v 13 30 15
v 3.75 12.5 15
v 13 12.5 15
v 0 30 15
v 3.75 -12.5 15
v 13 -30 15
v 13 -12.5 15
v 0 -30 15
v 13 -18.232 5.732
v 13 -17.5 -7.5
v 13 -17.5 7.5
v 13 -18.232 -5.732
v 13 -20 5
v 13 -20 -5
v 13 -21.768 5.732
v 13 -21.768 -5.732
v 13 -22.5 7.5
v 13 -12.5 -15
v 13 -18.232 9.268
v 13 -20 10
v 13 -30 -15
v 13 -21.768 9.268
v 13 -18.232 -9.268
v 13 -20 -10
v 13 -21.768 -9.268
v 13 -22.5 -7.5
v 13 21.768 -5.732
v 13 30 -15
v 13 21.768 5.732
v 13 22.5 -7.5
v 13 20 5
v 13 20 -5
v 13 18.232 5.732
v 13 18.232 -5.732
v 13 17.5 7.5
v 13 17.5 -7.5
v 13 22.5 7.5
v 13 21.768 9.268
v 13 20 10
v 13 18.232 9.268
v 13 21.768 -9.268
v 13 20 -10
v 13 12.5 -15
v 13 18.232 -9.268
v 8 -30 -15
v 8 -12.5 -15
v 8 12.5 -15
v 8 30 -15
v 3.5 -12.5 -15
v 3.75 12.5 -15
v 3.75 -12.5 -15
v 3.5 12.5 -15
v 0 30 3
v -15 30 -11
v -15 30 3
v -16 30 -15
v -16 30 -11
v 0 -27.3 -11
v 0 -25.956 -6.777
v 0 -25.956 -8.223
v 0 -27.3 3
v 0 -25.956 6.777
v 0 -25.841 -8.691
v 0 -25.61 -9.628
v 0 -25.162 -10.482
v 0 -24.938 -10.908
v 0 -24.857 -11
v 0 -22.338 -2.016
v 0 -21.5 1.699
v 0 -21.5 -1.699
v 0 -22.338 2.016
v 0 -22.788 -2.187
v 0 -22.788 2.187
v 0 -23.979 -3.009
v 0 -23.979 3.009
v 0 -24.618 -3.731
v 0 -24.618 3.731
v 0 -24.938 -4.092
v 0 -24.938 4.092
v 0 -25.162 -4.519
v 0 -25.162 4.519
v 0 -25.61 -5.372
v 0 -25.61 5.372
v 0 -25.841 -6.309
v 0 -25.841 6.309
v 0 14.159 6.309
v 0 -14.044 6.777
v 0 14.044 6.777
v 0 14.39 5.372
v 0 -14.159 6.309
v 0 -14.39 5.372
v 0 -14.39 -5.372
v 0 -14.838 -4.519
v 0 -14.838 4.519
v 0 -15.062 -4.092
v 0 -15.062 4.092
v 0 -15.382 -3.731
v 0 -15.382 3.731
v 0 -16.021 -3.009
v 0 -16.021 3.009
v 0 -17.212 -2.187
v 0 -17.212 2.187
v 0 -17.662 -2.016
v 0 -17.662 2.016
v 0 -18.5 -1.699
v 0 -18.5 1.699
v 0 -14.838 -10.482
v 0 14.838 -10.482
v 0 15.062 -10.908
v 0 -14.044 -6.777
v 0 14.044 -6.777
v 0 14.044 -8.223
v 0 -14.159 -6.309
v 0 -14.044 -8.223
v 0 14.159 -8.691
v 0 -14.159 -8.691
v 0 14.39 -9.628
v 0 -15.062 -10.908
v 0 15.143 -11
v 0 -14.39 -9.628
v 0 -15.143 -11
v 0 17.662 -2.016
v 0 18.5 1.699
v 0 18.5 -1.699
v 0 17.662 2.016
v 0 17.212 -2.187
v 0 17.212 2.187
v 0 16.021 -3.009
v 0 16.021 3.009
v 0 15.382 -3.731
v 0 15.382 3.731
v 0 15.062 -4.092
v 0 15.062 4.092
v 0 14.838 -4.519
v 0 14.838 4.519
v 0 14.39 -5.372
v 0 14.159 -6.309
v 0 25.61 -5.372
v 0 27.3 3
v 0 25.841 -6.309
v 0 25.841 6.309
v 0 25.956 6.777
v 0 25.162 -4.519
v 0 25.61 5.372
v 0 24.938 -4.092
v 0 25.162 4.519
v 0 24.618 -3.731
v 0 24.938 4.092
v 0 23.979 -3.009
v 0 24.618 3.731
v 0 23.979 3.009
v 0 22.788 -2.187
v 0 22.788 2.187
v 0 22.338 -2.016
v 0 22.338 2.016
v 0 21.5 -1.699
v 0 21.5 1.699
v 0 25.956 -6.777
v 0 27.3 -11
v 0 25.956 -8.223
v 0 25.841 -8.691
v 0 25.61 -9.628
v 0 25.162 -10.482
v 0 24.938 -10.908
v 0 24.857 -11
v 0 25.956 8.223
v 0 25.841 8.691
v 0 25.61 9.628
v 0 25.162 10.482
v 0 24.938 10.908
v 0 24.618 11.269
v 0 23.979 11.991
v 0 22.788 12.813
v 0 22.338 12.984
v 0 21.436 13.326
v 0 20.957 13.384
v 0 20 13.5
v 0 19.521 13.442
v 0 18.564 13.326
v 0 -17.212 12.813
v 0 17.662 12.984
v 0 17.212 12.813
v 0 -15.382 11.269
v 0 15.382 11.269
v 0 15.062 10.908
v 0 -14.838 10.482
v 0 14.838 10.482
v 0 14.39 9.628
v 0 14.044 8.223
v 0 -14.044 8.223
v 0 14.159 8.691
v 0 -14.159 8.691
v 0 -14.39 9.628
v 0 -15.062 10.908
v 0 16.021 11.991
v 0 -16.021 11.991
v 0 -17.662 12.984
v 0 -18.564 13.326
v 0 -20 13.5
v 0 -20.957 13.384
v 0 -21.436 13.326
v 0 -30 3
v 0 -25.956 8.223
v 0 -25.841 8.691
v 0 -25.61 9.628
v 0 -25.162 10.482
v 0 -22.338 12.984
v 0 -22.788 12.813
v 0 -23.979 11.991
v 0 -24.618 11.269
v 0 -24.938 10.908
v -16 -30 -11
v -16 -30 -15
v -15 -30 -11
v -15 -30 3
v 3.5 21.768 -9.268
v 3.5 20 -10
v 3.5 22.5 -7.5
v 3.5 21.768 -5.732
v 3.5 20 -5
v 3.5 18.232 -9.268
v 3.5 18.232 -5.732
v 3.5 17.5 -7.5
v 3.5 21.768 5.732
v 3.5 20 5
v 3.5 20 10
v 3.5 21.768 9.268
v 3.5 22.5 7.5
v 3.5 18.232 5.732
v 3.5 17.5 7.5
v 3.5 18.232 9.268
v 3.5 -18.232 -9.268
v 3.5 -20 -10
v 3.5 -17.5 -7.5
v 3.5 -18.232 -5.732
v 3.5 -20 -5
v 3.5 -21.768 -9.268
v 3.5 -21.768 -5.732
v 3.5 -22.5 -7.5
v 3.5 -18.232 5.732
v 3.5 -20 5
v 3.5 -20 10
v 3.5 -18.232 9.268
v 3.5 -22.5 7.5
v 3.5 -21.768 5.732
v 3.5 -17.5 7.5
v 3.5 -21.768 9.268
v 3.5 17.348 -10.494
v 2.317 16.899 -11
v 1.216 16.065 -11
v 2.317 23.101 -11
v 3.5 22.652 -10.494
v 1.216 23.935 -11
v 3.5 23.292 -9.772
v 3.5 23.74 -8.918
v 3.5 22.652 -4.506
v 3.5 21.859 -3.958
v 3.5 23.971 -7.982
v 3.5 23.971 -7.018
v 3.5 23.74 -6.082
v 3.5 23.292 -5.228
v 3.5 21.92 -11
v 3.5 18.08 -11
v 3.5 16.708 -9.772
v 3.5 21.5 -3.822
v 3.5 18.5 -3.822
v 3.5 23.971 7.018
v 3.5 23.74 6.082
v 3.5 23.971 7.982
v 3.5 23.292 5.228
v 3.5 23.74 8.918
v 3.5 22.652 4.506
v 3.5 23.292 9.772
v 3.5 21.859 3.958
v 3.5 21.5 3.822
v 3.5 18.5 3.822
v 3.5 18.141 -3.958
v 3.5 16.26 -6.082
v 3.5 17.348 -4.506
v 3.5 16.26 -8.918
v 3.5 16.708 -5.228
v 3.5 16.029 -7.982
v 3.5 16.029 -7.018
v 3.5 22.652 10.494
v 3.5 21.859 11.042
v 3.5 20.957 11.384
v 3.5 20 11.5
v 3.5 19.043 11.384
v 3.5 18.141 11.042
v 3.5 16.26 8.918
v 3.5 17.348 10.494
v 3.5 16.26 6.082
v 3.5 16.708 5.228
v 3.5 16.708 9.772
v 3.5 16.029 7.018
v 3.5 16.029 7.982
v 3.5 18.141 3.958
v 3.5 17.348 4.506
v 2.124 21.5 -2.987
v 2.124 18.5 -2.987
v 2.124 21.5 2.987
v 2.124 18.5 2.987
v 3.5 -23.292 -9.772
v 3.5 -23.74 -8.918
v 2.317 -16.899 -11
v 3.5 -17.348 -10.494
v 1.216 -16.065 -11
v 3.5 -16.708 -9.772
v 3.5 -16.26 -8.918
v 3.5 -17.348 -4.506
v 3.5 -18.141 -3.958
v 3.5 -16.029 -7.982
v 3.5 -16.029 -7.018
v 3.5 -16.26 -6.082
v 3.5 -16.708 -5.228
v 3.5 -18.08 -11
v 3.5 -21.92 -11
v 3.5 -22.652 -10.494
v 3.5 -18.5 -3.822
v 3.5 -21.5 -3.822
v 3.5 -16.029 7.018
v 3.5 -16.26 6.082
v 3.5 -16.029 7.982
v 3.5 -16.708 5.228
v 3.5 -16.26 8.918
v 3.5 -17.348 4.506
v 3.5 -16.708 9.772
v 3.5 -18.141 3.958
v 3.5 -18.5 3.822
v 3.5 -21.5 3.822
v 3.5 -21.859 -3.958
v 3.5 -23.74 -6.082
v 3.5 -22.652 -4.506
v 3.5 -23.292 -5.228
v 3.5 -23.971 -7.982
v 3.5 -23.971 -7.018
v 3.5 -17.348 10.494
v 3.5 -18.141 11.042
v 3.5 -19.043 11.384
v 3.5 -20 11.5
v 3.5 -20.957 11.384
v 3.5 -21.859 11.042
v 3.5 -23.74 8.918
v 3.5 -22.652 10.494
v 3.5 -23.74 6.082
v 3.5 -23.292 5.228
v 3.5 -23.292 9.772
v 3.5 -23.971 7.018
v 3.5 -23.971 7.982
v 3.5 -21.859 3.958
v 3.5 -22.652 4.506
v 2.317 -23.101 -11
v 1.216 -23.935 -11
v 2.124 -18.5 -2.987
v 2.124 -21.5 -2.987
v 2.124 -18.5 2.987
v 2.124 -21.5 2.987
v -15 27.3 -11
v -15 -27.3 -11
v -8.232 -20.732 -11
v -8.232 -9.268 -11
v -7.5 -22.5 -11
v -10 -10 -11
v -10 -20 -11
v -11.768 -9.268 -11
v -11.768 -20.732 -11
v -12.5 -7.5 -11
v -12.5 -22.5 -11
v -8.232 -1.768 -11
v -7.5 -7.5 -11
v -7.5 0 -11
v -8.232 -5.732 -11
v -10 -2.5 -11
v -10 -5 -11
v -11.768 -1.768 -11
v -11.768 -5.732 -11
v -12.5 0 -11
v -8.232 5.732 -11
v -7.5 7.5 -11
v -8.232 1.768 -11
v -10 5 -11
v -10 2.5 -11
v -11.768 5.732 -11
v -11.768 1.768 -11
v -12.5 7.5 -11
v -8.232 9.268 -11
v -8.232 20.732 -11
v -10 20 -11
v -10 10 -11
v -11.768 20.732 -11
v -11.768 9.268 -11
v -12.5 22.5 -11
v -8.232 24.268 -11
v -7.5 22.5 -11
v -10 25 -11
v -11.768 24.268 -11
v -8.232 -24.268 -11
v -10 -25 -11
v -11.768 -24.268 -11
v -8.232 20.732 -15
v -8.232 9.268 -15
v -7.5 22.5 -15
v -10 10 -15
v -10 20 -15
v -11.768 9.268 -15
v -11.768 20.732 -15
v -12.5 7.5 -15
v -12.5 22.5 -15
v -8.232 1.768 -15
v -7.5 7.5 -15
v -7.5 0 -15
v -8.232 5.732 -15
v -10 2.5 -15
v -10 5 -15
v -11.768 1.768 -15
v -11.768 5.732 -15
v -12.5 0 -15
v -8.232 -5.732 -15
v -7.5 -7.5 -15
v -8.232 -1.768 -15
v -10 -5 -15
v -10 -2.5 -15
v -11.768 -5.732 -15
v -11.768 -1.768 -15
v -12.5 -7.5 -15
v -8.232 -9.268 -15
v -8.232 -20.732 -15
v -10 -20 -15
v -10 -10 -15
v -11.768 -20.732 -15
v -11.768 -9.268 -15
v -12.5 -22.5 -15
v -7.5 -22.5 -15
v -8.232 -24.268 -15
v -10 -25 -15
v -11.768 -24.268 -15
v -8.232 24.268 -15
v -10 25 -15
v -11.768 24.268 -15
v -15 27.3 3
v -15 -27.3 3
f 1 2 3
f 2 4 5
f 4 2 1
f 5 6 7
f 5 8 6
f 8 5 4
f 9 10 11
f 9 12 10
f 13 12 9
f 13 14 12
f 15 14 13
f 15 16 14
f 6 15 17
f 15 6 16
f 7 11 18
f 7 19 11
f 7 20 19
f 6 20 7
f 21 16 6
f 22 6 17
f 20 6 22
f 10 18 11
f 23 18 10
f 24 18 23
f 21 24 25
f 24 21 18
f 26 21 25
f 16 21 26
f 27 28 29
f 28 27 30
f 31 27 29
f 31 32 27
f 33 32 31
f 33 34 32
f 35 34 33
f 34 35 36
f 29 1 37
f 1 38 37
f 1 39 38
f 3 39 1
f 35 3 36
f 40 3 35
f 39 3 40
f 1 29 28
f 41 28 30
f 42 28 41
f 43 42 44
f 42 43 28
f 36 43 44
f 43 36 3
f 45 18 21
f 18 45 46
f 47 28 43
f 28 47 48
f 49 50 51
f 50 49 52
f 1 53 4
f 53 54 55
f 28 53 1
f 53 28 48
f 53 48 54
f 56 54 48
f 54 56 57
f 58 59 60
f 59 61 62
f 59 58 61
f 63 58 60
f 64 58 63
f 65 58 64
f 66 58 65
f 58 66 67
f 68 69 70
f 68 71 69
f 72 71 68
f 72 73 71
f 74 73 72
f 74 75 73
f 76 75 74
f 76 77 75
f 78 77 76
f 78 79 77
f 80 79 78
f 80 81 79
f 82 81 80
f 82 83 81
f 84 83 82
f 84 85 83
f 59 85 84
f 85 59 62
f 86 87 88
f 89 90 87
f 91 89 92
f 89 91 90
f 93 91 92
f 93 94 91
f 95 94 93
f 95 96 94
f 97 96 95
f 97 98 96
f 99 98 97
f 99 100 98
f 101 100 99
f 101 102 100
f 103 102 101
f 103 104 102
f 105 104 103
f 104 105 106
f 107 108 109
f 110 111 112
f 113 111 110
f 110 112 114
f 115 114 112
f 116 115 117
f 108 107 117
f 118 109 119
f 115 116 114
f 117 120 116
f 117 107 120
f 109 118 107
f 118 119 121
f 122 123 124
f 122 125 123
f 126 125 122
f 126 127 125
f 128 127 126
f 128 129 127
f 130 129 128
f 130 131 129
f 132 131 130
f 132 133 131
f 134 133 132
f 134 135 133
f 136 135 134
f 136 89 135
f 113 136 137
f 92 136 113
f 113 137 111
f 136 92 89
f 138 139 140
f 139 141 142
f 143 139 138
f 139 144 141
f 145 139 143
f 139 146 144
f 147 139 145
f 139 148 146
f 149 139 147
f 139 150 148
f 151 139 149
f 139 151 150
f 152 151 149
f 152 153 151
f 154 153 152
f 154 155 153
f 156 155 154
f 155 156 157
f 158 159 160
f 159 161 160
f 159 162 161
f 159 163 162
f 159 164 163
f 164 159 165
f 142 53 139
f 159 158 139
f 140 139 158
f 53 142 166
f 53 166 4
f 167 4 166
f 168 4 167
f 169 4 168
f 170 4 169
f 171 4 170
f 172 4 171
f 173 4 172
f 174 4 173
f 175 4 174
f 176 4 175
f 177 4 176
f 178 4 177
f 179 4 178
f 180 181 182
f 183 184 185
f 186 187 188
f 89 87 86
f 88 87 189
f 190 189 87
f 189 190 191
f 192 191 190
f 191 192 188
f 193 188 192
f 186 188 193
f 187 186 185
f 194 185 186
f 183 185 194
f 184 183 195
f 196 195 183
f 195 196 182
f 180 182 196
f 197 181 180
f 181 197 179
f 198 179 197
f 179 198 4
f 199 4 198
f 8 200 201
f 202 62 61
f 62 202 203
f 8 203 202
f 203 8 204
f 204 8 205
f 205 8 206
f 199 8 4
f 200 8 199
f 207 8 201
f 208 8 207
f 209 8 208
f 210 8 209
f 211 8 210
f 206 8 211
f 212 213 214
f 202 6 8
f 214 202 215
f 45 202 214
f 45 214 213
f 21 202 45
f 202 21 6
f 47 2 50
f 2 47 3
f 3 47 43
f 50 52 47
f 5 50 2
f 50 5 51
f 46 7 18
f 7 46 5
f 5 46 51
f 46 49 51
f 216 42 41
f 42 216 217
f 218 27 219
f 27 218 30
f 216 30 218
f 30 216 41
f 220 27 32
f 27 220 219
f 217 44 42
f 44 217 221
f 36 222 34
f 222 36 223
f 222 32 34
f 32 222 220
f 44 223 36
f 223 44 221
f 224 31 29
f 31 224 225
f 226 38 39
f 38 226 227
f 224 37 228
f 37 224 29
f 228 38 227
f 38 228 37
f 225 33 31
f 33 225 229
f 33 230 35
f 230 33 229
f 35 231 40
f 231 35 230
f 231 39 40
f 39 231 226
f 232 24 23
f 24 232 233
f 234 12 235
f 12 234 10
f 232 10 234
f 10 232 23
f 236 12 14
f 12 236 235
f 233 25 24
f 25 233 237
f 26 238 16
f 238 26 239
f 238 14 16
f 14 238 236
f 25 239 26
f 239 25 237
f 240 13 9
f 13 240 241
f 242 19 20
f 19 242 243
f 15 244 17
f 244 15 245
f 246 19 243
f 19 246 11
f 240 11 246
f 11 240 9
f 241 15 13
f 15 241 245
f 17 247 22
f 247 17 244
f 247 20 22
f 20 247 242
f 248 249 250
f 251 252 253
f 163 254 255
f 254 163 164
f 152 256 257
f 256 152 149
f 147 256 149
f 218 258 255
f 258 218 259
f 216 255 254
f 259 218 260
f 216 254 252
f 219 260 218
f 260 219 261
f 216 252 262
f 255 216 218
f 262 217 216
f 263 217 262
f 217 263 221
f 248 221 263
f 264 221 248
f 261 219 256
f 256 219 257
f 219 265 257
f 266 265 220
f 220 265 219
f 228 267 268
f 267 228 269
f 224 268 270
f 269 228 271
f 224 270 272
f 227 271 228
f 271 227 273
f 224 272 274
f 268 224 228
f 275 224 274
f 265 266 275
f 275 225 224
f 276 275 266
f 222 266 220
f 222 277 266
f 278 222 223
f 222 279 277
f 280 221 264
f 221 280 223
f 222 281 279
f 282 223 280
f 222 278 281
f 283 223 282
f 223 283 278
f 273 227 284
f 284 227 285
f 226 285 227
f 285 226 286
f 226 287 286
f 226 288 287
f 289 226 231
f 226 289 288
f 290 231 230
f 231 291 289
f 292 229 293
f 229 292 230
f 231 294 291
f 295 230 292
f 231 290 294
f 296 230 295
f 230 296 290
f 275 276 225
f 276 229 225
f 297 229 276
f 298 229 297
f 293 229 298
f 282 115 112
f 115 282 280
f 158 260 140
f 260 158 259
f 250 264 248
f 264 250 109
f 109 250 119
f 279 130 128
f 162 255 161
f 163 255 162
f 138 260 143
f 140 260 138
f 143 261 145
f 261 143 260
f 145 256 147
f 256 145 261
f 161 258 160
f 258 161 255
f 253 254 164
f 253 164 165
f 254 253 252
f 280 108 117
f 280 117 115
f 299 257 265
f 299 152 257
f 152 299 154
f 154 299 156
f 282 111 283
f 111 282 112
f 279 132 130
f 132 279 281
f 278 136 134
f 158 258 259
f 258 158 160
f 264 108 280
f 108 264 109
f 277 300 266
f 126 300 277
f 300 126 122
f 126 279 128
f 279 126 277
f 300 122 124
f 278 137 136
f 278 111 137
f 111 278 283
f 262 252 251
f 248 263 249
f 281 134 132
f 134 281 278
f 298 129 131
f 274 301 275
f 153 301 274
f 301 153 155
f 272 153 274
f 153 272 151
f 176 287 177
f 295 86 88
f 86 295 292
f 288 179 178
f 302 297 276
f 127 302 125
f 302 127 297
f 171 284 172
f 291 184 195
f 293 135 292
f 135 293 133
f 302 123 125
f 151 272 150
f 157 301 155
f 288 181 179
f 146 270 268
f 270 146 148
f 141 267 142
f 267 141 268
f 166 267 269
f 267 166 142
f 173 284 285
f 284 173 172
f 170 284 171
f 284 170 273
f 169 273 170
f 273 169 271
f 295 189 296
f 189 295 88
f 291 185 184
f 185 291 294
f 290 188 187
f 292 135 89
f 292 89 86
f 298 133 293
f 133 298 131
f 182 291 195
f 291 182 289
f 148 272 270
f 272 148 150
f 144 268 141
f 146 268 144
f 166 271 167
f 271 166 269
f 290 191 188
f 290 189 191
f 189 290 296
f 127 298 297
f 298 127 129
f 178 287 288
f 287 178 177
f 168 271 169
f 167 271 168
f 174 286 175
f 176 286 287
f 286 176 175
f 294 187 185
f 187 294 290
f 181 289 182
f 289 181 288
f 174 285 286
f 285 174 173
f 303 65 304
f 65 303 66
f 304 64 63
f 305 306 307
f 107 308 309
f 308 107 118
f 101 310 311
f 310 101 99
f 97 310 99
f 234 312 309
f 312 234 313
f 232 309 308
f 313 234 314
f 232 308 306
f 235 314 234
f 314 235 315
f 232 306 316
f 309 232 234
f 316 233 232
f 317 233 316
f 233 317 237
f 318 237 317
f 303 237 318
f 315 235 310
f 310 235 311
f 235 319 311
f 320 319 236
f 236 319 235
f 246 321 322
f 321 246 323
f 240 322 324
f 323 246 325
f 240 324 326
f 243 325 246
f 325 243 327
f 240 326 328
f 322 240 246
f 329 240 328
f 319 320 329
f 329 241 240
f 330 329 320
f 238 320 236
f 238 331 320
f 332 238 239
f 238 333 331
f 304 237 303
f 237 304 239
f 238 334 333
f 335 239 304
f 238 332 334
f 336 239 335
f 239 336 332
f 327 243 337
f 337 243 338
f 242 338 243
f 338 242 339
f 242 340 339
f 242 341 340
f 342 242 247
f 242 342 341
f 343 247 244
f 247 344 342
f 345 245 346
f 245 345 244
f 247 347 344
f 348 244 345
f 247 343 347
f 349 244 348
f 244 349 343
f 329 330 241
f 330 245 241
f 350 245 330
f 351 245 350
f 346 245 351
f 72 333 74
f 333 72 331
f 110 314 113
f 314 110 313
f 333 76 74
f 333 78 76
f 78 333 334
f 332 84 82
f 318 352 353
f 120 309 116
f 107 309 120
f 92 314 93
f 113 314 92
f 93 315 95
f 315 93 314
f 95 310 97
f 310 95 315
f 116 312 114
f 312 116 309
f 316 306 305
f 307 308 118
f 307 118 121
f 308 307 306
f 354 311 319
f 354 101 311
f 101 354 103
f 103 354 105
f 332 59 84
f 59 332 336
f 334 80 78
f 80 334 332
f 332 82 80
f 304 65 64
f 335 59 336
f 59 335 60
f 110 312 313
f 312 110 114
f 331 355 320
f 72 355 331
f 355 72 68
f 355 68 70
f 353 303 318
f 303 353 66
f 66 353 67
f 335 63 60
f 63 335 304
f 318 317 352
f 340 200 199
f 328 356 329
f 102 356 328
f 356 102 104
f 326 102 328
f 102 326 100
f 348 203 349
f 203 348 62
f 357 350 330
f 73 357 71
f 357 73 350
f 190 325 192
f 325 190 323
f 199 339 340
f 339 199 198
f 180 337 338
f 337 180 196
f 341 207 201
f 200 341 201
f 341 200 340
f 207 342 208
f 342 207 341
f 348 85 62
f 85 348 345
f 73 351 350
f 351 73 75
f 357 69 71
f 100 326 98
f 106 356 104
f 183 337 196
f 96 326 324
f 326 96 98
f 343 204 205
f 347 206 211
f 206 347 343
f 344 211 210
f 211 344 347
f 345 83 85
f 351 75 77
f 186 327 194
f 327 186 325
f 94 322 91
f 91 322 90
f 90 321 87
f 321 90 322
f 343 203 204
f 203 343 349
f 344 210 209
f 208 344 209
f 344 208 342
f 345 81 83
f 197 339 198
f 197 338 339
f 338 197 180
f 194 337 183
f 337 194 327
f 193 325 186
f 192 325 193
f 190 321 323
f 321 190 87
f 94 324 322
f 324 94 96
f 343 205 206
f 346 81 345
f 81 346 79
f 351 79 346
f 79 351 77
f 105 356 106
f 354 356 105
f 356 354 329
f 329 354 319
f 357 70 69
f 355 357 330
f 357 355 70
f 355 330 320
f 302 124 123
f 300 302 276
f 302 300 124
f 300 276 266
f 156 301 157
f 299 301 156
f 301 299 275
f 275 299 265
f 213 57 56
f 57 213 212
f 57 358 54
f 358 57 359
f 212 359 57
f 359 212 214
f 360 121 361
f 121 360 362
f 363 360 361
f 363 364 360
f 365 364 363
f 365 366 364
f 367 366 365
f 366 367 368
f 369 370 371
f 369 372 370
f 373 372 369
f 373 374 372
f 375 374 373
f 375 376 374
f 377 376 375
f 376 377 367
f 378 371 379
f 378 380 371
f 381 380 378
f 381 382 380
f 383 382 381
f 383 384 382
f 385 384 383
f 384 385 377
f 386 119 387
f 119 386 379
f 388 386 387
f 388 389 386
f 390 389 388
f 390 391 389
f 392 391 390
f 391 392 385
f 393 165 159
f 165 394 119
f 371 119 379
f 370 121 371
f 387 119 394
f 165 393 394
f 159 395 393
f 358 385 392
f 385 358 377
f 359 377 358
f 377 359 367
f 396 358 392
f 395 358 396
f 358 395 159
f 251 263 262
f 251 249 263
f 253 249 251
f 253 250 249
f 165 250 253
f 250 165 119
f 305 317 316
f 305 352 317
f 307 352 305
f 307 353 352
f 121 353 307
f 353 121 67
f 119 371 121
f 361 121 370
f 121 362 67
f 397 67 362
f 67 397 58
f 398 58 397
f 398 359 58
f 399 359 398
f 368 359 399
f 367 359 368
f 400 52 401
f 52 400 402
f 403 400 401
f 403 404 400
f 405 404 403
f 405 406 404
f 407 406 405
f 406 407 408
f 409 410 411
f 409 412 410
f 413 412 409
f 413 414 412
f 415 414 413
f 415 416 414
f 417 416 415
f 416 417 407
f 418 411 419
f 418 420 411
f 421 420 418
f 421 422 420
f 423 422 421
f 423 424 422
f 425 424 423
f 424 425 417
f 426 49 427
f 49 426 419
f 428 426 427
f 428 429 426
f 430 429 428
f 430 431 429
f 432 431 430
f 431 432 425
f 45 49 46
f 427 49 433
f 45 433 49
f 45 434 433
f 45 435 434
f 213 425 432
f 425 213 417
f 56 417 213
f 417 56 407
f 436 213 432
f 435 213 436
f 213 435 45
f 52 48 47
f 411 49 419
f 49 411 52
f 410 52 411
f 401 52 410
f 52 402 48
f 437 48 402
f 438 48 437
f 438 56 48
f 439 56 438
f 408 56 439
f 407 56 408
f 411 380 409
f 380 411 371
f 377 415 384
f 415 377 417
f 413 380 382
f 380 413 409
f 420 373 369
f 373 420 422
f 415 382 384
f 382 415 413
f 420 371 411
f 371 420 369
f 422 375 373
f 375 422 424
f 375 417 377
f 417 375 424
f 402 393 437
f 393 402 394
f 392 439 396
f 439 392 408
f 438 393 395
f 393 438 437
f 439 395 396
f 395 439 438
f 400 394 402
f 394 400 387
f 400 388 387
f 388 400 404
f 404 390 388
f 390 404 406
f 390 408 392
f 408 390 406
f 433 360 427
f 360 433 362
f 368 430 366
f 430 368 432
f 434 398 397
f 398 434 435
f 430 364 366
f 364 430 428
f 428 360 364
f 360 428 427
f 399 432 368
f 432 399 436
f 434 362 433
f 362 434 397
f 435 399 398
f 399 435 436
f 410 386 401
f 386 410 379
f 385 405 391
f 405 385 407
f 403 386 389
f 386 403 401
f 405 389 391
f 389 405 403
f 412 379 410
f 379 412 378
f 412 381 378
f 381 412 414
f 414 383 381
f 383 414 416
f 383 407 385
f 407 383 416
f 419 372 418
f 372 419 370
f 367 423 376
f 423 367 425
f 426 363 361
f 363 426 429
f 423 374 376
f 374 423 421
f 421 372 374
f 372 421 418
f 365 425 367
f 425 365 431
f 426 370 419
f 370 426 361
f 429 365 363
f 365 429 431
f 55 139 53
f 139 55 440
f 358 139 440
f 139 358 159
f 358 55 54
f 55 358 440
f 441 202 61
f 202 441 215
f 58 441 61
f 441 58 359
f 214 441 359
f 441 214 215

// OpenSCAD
// 90 d Plate with out tabs and ends
//block shape
x=30;
y=60;
z=13;

// track channel
f=x+10;
g=25;
h=9.5;
// block top
e=20;
r=y+10;
t=16.5;

// spacing of screw holes
cx=15;
cy=40;
dx=15;
dy=45;

// rotation
gx=90;

rotate([0,gx,0])
difference()
{
    translate([0,0,z]/2) cube ([x,y,z],center=true);
    translate([0,0,z+4]/2) cube([f,g,h],center=true);
 //   translate([49,0,z+11]/2) cube ([e,r,t],center=true);
       // translate([-49,0,z+11]/2) cube ([e,r,t],center=true);

  translate([cx,cy,0]/2) cylinder(d=5, h=50,  center=true);
  translate([-cx,cy,0]/2) cylinder(d=5, h=50,  center=true);
    translate([cx,-cy,0]/2) cylinder(d=5, h=50,  center=true);
    translate([-cx,-cy,0]/2) cylinder(d=5, h=50,  center=true);
      translate([cx,cy,0]/2)  cylinder(d1=16, d2=8, h=7,  center=true);
 translate([-cx,cy,0]/2) cylinder(d1=16, d2=8, h=7, center=true);
    translate([cx,-cy,0]/2) cylinder(d1=16, d2=8, h=7,  center=true);
    translate([-cx,-cy,0]/2) cylinder(d1=16, d2=8, h=7,  center=true);    
// zip tie knotches    
    translate([0,-cy/2,11.5-10]) cube([18,3,4],center=true);
    translate([0,cy/2,11.5-10]) cube([18,3,4],center=true);
// removal knotches
//       translate([0,-(6.8+51)/2,11.5]) cube([8,3,4],center=true);
//   translate([0,(6.8+51)/2,11.5-10]) cube([8,3,4],center=true);
//   translate([(6.8+51)/2,0,11.5-11]) cube([3,8,2],center=true);
  // translate([-(6.8+51)/2,0,11.5-11]) cube([3,8,2],center=true);
}

//rotate([0,gx,0])
difference ()
{
    //plate for 5 bolt holes
    translate([-4,0,-13]) cube([24,60,4],center=true);
  //bolt holes
    translate([-10,0,-8])       cylinder(d=5, h=60, center=true);
      translate([-10,22.5,-8])cylinder(d=5, h=60, center=true);
      translate([-10,-22.5,-8])    cylinder(d=5, h=60, center=true);
        translate([-10,10,-8])    cylinder(d=5, h=60, center=true);
      translate([-10,-10,-8])    cylinder(d=5, h=60, center=true);
   //notch to keep opening for C-channel
    translate([6,0,-15]) cube([5,25,15],center=true);
}
// tabs for slots
// rotate([0,gx,0])
//  translate([0,(6.8+4)/2,z-8]) cube([18,2.7,5],center=true);
//rotate([0,gx,0])
// translate([0,-(6.8+4)/2,z-8]) cube([18,2.7,5],center=true);
//blocks for  sides
 rotate([0,gx,0])
translate([6,57.3/2,-6]) cube([18,2.7,18],center=true);
rotate([0,gx,0])
translate([6,-57.3/2,-6]) cube([18,2.7,18],center=true);

 
